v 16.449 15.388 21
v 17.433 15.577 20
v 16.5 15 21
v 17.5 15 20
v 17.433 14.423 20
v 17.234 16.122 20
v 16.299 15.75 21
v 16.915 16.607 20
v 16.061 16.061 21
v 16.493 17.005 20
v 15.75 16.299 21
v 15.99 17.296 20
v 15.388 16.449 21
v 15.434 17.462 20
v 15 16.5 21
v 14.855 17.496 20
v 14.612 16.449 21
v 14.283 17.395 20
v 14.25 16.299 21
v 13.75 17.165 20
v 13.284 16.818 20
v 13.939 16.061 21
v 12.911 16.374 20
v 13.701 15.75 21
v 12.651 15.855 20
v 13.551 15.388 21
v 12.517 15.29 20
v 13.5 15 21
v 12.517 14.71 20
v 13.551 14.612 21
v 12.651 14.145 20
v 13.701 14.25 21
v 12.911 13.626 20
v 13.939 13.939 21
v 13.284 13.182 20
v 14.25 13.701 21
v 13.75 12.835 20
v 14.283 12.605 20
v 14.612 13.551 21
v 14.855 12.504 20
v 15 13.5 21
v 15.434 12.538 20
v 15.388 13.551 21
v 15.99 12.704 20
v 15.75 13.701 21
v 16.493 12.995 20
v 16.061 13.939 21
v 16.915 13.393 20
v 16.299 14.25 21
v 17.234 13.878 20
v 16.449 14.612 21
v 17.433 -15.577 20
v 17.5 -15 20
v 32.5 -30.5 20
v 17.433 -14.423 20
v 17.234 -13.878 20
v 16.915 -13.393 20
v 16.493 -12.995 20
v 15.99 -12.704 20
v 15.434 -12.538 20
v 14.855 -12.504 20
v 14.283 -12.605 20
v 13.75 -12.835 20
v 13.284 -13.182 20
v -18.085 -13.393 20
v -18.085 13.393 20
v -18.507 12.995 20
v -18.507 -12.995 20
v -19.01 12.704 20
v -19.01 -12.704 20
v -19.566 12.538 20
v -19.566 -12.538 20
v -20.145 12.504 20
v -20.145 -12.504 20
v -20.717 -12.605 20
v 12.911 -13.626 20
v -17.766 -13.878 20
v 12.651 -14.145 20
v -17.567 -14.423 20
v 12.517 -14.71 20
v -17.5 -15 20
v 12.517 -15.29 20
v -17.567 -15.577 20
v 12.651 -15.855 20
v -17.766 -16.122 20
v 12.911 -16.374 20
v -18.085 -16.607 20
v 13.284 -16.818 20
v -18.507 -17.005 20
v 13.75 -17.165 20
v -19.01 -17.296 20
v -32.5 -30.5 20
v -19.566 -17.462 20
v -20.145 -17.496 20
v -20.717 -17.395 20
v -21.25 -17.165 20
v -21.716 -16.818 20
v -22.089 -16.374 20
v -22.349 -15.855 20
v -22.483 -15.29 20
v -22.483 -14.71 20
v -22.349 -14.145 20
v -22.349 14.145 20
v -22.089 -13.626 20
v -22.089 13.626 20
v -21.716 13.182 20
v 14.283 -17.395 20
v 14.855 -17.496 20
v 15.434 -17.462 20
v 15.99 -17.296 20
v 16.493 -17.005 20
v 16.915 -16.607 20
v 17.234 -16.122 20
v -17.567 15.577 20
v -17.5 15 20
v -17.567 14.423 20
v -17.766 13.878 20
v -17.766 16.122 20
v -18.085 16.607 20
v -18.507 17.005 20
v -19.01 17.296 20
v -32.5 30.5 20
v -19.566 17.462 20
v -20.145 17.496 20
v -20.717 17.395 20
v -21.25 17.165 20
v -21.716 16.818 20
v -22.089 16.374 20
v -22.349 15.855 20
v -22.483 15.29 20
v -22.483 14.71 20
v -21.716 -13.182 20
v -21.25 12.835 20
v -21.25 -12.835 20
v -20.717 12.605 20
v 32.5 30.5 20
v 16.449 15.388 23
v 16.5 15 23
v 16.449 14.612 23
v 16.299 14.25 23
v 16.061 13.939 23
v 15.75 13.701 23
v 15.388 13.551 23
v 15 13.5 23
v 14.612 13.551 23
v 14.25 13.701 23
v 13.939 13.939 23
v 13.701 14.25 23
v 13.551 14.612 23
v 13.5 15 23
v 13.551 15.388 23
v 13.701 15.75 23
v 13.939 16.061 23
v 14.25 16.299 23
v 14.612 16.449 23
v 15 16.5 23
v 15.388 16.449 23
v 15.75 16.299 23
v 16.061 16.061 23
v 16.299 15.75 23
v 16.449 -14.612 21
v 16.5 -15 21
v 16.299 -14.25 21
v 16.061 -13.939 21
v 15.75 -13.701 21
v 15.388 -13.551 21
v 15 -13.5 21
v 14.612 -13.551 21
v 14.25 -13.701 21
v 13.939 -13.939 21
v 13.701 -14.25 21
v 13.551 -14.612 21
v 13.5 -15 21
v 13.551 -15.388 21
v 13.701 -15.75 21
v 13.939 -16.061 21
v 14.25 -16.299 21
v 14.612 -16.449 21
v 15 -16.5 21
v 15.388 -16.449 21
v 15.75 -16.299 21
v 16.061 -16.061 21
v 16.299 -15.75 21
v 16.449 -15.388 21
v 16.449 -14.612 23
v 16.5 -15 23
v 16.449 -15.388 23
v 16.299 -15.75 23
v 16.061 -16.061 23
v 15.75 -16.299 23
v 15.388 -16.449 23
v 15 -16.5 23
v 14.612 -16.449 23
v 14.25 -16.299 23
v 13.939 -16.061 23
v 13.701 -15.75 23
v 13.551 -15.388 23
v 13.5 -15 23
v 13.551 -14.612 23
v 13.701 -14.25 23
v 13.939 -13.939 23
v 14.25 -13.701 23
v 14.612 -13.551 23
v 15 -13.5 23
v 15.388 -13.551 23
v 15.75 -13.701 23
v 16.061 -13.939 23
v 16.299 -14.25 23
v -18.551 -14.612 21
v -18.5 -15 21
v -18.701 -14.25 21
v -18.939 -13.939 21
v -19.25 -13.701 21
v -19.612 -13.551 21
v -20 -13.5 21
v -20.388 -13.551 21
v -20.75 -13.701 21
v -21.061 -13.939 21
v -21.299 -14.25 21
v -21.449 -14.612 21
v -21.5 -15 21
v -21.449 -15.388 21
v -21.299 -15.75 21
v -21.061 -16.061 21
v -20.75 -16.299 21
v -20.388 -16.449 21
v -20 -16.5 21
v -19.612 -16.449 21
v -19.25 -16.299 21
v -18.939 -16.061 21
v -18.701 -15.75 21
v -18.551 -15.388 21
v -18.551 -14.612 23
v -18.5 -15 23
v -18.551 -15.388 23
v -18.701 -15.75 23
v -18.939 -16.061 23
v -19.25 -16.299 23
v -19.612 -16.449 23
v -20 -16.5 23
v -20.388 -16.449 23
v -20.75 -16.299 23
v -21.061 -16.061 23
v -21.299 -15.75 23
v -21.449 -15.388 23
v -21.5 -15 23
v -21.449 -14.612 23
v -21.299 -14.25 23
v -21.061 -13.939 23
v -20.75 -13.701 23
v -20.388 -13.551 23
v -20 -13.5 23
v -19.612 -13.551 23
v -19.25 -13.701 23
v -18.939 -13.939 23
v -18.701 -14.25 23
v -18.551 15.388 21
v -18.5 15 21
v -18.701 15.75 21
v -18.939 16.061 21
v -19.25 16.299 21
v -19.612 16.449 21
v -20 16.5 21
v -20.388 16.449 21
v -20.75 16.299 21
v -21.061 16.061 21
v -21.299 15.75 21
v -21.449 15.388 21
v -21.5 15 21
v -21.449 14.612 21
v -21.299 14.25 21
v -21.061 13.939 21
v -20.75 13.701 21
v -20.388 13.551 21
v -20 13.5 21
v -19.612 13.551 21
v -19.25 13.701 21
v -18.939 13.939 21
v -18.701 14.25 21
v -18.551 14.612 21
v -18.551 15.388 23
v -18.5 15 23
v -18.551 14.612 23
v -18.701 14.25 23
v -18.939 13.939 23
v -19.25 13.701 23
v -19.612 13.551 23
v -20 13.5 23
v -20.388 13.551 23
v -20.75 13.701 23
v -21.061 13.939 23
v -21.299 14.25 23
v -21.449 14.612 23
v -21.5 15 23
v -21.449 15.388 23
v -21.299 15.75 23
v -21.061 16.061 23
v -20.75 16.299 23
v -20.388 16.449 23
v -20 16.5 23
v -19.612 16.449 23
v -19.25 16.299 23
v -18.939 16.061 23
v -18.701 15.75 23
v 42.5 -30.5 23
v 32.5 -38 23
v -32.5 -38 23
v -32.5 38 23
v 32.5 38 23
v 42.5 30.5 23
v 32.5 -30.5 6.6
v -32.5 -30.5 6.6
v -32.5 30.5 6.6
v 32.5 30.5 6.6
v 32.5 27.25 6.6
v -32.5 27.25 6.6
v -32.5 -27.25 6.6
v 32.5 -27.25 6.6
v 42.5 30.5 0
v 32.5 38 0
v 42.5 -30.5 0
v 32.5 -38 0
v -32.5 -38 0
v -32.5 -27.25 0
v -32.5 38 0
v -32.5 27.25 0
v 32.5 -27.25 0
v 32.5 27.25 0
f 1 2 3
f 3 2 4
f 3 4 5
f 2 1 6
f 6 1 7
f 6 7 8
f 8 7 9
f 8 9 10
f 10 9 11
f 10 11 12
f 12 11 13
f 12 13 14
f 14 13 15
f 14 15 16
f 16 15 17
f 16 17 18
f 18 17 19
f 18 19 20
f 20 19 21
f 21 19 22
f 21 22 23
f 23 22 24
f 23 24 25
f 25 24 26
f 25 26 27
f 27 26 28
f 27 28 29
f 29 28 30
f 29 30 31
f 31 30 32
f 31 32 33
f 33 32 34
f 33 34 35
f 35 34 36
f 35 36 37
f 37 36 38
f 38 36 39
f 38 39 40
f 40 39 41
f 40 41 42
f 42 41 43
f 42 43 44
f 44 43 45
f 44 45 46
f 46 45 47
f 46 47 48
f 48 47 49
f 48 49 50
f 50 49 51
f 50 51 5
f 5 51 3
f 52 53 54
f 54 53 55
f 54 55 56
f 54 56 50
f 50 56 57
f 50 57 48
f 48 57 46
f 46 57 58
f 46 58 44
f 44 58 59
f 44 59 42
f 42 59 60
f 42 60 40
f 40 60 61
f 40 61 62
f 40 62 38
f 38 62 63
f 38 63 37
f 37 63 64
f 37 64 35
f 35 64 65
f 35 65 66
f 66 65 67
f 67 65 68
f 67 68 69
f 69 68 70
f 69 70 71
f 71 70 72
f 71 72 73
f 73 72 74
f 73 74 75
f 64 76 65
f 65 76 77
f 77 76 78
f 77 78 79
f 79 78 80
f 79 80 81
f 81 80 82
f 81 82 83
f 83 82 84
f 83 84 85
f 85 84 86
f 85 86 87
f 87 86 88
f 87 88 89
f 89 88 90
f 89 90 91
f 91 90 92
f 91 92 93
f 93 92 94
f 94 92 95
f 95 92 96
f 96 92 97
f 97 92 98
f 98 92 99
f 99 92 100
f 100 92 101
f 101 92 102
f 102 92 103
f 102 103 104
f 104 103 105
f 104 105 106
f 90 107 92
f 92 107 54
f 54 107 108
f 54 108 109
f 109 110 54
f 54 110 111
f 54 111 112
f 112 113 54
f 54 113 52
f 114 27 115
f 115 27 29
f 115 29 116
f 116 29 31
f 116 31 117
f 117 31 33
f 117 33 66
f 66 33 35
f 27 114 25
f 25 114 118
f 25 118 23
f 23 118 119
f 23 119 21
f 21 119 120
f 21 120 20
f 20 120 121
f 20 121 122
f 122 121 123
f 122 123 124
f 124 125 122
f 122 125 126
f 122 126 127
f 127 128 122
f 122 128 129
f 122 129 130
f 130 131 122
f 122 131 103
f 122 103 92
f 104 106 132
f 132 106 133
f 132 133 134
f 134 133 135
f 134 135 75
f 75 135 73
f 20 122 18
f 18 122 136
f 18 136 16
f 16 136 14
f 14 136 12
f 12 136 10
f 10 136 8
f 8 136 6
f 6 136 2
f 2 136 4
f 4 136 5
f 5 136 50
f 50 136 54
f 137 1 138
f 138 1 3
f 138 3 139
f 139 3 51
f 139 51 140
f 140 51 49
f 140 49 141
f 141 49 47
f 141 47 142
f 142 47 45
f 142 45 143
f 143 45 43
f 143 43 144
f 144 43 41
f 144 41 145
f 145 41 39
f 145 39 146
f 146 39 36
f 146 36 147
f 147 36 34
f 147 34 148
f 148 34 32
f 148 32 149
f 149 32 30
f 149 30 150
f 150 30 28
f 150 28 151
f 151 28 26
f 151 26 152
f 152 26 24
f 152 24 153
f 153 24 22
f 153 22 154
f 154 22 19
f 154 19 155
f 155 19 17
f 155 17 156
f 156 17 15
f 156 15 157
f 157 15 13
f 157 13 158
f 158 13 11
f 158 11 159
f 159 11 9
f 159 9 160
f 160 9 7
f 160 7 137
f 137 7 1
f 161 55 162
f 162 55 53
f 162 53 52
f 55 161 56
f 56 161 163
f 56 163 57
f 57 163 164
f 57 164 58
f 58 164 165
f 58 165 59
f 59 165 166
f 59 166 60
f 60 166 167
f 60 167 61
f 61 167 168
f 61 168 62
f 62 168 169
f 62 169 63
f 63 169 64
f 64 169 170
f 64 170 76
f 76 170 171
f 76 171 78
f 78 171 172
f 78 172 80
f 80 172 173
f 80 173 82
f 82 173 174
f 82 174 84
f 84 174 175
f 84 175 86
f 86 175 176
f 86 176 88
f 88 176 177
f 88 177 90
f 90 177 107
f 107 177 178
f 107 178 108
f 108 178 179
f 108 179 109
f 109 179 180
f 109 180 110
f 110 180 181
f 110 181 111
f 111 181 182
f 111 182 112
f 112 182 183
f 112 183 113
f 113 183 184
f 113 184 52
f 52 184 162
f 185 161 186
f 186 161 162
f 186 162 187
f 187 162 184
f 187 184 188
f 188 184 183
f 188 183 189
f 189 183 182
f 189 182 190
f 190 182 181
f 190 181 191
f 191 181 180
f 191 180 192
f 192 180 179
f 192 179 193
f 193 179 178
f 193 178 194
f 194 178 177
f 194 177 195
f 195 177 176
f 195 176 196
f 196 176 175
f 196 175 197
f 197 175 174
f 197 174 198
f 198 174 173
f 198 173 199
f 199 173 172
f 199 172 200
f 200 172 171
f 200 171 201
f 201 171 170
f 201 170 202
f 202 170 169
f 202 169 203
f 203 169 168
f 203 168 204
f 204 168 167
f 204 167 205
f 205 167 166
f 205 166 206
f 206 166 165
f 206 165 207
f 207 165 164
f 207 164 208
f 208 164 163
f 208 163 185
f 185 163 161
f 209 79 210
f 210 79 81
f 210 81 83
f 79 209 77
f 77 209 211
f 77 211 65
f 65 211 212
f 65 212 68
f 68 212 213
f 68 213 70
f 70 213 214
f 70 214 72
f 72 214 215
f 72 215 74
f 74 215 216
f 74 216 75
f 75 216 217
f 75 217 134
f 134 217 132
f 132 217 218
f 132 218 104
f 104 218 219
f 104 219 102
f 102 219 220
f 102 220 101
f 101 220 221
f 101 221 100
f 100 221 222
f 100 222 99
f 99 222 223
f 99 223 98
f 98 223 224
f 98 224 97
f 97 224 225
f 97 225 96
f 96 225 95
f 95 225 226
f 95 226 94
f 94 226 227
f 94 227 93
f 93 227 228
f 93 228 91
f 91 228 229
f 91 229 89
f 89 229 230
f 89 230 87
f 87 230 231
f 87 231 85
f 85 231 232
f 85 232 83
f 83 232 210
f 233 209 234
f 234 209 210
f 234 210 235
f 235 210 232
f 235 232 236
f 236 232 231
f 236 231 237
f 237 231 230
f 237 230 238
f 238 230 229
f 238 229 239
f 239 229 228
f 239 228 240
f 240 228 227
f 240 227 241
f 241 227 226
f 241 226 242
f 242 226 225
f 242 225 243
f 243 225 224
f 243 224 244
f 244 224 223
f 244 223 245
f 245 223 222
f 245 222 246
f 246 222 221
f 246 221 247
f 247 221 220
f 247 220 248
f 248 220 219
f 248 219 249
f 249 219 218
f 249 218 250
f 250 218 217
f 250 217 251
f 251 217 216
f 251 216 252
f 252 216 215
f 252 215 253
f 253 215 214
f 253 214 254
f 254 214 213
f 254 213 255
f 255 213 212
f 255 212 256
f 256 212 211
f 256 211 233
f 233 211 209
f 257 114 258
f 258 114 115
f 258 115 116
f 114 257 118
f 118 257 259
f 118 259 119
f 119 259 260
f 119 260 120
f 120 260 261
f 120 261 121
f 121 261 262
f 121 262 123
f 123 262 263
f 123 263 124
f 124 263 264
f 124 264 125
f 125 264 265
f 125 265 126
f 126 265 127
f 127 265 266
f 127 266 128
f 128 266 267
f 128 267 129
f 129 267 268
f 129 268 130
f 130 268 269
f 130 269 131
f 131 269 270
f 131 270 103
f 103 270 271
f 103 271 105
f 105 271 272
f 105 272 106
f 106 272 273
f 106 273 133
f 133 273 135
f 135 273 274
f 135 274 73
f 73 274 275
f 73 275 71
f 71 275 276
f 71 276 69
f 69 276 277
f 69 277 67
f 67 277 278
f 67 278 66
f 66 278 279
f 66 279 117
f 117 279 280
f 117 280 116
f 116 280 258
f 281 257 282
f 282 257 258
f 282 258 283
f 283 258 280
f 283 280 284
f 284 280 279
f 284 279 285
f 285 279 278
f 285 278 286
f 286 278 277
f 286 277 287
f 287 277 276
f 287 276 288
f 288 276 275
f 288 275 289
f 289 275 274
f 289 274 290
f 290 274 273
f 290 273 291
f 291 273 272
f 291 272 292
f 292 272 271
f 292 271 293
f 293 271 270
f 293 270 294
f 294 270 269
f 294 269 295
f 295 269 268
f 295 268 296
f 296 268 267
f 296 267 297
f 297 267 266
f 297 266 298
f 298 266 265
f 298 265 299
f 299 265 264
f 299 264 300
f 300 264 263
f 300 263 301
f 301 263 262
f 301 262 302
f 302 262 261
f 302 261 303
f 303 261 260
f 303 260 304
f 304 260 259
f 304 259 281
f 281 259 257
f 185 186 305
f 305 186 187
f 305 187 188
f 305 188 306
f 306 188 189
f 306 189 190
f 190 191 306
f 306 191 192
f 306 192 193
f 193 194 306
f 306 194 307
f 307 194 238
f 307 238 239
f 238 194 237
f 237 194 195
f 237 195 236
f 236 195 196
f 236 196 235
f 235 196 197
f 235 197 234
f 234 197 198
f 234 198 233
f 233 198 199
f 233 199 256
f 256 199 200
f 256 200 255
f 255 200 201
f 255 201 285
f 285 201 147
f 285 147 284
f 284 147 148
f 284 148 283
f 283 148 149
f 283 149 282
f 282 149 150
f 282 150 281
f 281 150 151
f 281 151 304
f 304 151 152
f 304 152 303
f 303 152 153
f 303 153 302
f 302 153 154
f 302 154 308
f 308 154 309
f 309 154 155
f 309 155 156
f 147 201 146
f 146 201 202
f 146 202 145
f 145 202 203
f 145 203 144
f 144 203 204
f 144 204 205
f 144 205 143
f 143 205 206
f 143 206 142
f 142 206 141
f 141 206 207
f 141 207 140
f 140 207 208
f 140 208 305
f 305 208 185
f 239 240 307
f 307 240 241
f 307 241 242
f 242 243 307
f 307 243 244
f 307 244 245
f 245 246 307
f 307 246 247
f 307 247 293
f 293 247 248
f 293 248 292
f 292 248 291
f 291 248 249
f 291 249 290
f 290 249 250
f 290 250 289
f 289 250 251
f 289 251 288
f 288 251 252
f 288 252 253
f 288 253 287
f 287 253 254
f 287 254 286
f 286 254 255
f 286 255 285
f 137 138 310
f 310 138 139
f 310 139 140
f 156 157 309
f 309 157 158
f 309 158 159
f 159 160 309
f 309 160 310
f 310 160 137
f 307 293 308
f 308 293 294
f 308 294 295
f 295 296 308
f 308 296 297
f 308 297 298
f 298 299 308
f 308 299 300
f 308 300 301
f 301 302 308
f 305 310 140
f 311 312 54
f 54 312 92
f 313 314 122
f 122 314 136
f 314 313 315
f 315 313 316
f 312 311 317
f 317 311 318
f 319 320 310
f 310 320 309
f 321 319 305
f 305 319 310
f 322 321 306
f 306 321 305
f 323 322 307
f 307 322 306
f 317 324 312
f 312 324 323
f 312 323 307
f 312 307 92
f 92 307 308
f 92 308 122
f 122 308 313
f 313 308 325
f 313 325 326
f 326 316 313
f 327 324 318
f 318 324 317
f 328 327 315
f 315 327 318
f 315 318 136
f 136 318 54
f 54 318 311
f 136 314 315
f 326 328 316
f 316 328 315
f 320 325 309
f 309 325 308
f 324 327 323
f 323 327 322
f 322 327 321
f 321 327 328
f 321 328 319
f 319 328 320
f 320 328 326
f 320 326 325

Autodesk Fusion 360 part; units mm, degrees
sketch "Sketch1" plane through (0, 0, 0) normal (0, 0, 1) x (1, 0, 0)
  line L0 (32.5, 30.5) -> (-32.5, 30.5)
  line L1 (-32.5, 30.5) -> (-32.5, -30.5)
  line L2 (-32.5, -30.5) -> (32.5, -30.5)
  line L3 (32.5, -30.5) -> (32.5, 30.5)
  line L4 (32.5, -27.25) -> (-32.5, -27.25)
  line L5 (-32.5, -27.25) -> (-32.5, 27.25)
  line L6 (-32.5, 27.25) -> (32.5, 27.25)
  line L7 (32.5, 27.25) -> (32.5, -27.25)
  line L8 (32.5, 38) -> (-32.5, 38)
  line L9 (42.5, -30.5) -> (42.5, 30.5)
  line L10 (32.5, 38) -> (42.5, 30.5)
  line L11 (-32.5, 38) -> (-32.5, 30.5)
  line L12 (1.75, 0) -> (22.5, 0)
  line L13 (-32.5, -38) -> (-32.5, -30.5)
  line L14 (32.5, -38) -> (-32.5, -38)
  line L15 (32.5, -38) -> (42.5, -30.5)
  line L16 (42.5, 30.5) -> (42.5, -30.5)
  dimension "d1" = 65
  dimension "d2" = 61
  dimension "d3" = 65
  dimension "d4" = 54.5
  dimension "d5" = 7.5
  dimension "d6" = 10
extrude "Extrude1" add sketch "Sketch1" along normal blind 6.6 contours L0 L1 L3 L6 | L0 L2 L3 L7 L8 L9 L10 L11 L13 L14 L15 L16 | L1 L2 L3 L4
extrude "Extrude2" add sketch "Sketch1" along normal blind 20 contours L0 L2 L3 L7 L8 L9 L10 L11 L13 L14 L15 L16
extrude "Extrude3" add sketch "Sketch1" along normal blind 23 and the other way blind -20
sketch "Sketch2" plane through (0, 0, 23) normal (0, 0, 1) x (-1, 0, 0)
  line L0 (-32.5, -38) -> (32.5, -38)
  line L1 (32.5, -38) -> (32.5, 38)
  line L2 (32.5, 38) -> (-32.5, 38)
  line L3 (-32.5, 38) -> (-42.5, 30.5)
  line L4 (-42.5, 30.5) -> (-42.5, -30.5)
  line L5 (-42.5, -30.5) -> (-32.5, -38)
  circle A0 centre (20, 15) radius 1.5
  circle A1 centre (-15, 15) radius 1.5
  line L6 (-1.75, 0) -> (-22.5, 0)
  circle A2 centre (20, -15) radius 1.5
  circle A3 centre (-15, -15) radius 1.5
  dimension "d15" = 3
  dimension "d16" = 3
extrude "Extrude4" cut sketch "Sketch2" against normal blind 5 contours A0 | A1 | A2 | A3
chamfer "Chamfer1" distance 1 angle 45 4 edges at (-18.6015, 15.5424, 20) (-18.6015, -14.4576, 20) (16.3985, -14.4576, 20) (16.3985, 15.5424, 20)
